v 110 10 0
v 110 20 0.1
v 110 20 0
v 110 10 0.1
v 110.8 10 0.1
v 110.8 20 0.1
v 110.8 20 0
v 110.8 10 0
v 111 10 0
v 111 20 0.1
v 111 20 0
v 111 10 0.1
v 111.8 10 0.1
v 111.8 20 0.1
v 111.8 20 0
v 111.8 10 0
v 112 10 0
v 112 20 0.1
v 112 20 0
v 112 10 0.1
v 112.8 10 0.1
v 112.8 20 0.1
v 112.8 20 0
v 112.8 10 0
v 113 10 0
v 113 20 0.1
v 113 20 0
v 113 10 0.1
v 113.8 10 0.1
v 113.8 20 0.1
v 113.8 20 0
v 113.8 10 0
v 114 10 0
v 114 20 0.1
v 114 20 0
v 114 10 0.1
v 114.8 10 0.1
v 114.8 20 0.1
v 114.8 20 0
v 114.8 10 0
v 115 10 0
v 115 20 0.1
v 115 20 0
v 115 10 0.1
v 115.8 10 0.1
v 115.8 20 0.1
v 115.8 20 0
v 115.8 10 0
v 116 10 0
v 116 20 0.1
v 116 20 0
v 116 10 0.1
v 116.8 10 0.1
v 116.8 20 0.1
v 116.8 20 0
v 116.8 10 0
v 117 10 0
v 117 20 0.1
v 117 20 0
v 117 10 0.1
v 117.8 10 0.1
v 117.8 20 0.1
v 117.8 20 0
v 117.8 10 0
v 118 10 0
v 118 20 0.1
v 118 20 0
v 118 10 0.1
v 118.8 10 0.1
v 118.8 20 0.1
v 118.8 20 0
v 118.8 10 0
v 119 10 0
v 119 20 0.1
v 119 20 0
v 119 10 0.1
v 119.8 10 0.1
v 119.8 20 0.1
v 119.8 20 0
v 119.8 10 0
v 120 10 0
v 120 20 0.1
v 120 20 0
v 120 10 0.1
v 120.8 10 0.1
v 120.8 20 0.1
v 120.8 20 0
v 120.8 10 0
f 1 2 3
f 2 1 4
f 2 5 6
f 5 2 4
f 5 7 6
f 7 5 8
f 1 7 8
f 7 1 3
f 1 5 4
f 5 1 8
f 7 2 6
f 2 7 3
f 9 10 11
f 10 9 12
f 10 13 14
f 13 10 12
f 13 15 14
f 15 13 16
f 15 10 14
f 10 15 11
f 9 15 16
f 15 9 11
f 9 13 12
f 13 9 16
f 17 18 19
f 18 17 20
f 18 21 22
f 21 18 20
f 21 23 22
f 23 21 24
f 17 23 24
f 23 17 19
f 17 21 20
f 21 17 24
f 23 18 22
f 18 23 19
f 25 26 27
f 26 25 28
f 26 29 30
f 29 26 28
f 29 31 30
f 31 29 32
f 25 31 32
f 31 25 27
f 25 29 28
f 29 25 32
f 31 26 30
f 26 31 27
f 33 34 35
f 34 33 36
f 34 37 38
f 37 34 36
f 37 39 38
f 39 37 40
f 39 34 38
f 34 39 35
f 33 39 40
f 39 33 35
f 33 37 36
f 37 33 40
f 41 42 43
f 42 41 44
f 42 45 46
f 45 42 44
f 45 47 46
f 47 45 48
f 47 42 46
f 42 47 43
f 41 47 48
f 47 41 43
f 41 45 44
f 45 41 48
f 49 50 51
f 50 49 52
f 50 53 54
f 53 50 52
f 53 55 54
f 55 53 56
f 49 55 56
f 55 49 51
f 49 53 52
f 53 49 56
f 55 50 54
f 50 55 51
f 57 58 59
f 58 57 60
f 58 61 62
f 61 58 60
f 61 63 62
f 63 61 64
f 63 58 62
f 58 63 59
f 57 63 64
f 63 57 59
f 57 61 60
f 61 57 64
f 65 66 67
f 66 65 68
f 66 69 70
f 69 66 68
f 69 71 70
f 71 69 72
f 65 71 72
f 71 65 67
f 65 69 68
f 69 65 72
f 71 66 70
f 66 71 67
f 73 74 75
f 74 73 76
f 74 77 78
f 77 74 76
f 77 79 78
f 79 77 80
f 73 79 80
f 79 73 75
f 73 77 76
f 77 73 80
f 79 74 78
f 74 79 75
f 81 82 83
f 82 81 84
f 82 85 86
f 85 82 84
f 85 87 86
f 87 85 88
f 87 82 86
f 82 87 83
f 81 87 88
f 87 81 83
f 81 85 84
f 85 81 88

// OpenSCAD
translate([10+100,10+0,0])
        for (i = [0 : 10]){
            translate([i,0,0])
                cube(size = [0.8,10,0.1]);
    }
